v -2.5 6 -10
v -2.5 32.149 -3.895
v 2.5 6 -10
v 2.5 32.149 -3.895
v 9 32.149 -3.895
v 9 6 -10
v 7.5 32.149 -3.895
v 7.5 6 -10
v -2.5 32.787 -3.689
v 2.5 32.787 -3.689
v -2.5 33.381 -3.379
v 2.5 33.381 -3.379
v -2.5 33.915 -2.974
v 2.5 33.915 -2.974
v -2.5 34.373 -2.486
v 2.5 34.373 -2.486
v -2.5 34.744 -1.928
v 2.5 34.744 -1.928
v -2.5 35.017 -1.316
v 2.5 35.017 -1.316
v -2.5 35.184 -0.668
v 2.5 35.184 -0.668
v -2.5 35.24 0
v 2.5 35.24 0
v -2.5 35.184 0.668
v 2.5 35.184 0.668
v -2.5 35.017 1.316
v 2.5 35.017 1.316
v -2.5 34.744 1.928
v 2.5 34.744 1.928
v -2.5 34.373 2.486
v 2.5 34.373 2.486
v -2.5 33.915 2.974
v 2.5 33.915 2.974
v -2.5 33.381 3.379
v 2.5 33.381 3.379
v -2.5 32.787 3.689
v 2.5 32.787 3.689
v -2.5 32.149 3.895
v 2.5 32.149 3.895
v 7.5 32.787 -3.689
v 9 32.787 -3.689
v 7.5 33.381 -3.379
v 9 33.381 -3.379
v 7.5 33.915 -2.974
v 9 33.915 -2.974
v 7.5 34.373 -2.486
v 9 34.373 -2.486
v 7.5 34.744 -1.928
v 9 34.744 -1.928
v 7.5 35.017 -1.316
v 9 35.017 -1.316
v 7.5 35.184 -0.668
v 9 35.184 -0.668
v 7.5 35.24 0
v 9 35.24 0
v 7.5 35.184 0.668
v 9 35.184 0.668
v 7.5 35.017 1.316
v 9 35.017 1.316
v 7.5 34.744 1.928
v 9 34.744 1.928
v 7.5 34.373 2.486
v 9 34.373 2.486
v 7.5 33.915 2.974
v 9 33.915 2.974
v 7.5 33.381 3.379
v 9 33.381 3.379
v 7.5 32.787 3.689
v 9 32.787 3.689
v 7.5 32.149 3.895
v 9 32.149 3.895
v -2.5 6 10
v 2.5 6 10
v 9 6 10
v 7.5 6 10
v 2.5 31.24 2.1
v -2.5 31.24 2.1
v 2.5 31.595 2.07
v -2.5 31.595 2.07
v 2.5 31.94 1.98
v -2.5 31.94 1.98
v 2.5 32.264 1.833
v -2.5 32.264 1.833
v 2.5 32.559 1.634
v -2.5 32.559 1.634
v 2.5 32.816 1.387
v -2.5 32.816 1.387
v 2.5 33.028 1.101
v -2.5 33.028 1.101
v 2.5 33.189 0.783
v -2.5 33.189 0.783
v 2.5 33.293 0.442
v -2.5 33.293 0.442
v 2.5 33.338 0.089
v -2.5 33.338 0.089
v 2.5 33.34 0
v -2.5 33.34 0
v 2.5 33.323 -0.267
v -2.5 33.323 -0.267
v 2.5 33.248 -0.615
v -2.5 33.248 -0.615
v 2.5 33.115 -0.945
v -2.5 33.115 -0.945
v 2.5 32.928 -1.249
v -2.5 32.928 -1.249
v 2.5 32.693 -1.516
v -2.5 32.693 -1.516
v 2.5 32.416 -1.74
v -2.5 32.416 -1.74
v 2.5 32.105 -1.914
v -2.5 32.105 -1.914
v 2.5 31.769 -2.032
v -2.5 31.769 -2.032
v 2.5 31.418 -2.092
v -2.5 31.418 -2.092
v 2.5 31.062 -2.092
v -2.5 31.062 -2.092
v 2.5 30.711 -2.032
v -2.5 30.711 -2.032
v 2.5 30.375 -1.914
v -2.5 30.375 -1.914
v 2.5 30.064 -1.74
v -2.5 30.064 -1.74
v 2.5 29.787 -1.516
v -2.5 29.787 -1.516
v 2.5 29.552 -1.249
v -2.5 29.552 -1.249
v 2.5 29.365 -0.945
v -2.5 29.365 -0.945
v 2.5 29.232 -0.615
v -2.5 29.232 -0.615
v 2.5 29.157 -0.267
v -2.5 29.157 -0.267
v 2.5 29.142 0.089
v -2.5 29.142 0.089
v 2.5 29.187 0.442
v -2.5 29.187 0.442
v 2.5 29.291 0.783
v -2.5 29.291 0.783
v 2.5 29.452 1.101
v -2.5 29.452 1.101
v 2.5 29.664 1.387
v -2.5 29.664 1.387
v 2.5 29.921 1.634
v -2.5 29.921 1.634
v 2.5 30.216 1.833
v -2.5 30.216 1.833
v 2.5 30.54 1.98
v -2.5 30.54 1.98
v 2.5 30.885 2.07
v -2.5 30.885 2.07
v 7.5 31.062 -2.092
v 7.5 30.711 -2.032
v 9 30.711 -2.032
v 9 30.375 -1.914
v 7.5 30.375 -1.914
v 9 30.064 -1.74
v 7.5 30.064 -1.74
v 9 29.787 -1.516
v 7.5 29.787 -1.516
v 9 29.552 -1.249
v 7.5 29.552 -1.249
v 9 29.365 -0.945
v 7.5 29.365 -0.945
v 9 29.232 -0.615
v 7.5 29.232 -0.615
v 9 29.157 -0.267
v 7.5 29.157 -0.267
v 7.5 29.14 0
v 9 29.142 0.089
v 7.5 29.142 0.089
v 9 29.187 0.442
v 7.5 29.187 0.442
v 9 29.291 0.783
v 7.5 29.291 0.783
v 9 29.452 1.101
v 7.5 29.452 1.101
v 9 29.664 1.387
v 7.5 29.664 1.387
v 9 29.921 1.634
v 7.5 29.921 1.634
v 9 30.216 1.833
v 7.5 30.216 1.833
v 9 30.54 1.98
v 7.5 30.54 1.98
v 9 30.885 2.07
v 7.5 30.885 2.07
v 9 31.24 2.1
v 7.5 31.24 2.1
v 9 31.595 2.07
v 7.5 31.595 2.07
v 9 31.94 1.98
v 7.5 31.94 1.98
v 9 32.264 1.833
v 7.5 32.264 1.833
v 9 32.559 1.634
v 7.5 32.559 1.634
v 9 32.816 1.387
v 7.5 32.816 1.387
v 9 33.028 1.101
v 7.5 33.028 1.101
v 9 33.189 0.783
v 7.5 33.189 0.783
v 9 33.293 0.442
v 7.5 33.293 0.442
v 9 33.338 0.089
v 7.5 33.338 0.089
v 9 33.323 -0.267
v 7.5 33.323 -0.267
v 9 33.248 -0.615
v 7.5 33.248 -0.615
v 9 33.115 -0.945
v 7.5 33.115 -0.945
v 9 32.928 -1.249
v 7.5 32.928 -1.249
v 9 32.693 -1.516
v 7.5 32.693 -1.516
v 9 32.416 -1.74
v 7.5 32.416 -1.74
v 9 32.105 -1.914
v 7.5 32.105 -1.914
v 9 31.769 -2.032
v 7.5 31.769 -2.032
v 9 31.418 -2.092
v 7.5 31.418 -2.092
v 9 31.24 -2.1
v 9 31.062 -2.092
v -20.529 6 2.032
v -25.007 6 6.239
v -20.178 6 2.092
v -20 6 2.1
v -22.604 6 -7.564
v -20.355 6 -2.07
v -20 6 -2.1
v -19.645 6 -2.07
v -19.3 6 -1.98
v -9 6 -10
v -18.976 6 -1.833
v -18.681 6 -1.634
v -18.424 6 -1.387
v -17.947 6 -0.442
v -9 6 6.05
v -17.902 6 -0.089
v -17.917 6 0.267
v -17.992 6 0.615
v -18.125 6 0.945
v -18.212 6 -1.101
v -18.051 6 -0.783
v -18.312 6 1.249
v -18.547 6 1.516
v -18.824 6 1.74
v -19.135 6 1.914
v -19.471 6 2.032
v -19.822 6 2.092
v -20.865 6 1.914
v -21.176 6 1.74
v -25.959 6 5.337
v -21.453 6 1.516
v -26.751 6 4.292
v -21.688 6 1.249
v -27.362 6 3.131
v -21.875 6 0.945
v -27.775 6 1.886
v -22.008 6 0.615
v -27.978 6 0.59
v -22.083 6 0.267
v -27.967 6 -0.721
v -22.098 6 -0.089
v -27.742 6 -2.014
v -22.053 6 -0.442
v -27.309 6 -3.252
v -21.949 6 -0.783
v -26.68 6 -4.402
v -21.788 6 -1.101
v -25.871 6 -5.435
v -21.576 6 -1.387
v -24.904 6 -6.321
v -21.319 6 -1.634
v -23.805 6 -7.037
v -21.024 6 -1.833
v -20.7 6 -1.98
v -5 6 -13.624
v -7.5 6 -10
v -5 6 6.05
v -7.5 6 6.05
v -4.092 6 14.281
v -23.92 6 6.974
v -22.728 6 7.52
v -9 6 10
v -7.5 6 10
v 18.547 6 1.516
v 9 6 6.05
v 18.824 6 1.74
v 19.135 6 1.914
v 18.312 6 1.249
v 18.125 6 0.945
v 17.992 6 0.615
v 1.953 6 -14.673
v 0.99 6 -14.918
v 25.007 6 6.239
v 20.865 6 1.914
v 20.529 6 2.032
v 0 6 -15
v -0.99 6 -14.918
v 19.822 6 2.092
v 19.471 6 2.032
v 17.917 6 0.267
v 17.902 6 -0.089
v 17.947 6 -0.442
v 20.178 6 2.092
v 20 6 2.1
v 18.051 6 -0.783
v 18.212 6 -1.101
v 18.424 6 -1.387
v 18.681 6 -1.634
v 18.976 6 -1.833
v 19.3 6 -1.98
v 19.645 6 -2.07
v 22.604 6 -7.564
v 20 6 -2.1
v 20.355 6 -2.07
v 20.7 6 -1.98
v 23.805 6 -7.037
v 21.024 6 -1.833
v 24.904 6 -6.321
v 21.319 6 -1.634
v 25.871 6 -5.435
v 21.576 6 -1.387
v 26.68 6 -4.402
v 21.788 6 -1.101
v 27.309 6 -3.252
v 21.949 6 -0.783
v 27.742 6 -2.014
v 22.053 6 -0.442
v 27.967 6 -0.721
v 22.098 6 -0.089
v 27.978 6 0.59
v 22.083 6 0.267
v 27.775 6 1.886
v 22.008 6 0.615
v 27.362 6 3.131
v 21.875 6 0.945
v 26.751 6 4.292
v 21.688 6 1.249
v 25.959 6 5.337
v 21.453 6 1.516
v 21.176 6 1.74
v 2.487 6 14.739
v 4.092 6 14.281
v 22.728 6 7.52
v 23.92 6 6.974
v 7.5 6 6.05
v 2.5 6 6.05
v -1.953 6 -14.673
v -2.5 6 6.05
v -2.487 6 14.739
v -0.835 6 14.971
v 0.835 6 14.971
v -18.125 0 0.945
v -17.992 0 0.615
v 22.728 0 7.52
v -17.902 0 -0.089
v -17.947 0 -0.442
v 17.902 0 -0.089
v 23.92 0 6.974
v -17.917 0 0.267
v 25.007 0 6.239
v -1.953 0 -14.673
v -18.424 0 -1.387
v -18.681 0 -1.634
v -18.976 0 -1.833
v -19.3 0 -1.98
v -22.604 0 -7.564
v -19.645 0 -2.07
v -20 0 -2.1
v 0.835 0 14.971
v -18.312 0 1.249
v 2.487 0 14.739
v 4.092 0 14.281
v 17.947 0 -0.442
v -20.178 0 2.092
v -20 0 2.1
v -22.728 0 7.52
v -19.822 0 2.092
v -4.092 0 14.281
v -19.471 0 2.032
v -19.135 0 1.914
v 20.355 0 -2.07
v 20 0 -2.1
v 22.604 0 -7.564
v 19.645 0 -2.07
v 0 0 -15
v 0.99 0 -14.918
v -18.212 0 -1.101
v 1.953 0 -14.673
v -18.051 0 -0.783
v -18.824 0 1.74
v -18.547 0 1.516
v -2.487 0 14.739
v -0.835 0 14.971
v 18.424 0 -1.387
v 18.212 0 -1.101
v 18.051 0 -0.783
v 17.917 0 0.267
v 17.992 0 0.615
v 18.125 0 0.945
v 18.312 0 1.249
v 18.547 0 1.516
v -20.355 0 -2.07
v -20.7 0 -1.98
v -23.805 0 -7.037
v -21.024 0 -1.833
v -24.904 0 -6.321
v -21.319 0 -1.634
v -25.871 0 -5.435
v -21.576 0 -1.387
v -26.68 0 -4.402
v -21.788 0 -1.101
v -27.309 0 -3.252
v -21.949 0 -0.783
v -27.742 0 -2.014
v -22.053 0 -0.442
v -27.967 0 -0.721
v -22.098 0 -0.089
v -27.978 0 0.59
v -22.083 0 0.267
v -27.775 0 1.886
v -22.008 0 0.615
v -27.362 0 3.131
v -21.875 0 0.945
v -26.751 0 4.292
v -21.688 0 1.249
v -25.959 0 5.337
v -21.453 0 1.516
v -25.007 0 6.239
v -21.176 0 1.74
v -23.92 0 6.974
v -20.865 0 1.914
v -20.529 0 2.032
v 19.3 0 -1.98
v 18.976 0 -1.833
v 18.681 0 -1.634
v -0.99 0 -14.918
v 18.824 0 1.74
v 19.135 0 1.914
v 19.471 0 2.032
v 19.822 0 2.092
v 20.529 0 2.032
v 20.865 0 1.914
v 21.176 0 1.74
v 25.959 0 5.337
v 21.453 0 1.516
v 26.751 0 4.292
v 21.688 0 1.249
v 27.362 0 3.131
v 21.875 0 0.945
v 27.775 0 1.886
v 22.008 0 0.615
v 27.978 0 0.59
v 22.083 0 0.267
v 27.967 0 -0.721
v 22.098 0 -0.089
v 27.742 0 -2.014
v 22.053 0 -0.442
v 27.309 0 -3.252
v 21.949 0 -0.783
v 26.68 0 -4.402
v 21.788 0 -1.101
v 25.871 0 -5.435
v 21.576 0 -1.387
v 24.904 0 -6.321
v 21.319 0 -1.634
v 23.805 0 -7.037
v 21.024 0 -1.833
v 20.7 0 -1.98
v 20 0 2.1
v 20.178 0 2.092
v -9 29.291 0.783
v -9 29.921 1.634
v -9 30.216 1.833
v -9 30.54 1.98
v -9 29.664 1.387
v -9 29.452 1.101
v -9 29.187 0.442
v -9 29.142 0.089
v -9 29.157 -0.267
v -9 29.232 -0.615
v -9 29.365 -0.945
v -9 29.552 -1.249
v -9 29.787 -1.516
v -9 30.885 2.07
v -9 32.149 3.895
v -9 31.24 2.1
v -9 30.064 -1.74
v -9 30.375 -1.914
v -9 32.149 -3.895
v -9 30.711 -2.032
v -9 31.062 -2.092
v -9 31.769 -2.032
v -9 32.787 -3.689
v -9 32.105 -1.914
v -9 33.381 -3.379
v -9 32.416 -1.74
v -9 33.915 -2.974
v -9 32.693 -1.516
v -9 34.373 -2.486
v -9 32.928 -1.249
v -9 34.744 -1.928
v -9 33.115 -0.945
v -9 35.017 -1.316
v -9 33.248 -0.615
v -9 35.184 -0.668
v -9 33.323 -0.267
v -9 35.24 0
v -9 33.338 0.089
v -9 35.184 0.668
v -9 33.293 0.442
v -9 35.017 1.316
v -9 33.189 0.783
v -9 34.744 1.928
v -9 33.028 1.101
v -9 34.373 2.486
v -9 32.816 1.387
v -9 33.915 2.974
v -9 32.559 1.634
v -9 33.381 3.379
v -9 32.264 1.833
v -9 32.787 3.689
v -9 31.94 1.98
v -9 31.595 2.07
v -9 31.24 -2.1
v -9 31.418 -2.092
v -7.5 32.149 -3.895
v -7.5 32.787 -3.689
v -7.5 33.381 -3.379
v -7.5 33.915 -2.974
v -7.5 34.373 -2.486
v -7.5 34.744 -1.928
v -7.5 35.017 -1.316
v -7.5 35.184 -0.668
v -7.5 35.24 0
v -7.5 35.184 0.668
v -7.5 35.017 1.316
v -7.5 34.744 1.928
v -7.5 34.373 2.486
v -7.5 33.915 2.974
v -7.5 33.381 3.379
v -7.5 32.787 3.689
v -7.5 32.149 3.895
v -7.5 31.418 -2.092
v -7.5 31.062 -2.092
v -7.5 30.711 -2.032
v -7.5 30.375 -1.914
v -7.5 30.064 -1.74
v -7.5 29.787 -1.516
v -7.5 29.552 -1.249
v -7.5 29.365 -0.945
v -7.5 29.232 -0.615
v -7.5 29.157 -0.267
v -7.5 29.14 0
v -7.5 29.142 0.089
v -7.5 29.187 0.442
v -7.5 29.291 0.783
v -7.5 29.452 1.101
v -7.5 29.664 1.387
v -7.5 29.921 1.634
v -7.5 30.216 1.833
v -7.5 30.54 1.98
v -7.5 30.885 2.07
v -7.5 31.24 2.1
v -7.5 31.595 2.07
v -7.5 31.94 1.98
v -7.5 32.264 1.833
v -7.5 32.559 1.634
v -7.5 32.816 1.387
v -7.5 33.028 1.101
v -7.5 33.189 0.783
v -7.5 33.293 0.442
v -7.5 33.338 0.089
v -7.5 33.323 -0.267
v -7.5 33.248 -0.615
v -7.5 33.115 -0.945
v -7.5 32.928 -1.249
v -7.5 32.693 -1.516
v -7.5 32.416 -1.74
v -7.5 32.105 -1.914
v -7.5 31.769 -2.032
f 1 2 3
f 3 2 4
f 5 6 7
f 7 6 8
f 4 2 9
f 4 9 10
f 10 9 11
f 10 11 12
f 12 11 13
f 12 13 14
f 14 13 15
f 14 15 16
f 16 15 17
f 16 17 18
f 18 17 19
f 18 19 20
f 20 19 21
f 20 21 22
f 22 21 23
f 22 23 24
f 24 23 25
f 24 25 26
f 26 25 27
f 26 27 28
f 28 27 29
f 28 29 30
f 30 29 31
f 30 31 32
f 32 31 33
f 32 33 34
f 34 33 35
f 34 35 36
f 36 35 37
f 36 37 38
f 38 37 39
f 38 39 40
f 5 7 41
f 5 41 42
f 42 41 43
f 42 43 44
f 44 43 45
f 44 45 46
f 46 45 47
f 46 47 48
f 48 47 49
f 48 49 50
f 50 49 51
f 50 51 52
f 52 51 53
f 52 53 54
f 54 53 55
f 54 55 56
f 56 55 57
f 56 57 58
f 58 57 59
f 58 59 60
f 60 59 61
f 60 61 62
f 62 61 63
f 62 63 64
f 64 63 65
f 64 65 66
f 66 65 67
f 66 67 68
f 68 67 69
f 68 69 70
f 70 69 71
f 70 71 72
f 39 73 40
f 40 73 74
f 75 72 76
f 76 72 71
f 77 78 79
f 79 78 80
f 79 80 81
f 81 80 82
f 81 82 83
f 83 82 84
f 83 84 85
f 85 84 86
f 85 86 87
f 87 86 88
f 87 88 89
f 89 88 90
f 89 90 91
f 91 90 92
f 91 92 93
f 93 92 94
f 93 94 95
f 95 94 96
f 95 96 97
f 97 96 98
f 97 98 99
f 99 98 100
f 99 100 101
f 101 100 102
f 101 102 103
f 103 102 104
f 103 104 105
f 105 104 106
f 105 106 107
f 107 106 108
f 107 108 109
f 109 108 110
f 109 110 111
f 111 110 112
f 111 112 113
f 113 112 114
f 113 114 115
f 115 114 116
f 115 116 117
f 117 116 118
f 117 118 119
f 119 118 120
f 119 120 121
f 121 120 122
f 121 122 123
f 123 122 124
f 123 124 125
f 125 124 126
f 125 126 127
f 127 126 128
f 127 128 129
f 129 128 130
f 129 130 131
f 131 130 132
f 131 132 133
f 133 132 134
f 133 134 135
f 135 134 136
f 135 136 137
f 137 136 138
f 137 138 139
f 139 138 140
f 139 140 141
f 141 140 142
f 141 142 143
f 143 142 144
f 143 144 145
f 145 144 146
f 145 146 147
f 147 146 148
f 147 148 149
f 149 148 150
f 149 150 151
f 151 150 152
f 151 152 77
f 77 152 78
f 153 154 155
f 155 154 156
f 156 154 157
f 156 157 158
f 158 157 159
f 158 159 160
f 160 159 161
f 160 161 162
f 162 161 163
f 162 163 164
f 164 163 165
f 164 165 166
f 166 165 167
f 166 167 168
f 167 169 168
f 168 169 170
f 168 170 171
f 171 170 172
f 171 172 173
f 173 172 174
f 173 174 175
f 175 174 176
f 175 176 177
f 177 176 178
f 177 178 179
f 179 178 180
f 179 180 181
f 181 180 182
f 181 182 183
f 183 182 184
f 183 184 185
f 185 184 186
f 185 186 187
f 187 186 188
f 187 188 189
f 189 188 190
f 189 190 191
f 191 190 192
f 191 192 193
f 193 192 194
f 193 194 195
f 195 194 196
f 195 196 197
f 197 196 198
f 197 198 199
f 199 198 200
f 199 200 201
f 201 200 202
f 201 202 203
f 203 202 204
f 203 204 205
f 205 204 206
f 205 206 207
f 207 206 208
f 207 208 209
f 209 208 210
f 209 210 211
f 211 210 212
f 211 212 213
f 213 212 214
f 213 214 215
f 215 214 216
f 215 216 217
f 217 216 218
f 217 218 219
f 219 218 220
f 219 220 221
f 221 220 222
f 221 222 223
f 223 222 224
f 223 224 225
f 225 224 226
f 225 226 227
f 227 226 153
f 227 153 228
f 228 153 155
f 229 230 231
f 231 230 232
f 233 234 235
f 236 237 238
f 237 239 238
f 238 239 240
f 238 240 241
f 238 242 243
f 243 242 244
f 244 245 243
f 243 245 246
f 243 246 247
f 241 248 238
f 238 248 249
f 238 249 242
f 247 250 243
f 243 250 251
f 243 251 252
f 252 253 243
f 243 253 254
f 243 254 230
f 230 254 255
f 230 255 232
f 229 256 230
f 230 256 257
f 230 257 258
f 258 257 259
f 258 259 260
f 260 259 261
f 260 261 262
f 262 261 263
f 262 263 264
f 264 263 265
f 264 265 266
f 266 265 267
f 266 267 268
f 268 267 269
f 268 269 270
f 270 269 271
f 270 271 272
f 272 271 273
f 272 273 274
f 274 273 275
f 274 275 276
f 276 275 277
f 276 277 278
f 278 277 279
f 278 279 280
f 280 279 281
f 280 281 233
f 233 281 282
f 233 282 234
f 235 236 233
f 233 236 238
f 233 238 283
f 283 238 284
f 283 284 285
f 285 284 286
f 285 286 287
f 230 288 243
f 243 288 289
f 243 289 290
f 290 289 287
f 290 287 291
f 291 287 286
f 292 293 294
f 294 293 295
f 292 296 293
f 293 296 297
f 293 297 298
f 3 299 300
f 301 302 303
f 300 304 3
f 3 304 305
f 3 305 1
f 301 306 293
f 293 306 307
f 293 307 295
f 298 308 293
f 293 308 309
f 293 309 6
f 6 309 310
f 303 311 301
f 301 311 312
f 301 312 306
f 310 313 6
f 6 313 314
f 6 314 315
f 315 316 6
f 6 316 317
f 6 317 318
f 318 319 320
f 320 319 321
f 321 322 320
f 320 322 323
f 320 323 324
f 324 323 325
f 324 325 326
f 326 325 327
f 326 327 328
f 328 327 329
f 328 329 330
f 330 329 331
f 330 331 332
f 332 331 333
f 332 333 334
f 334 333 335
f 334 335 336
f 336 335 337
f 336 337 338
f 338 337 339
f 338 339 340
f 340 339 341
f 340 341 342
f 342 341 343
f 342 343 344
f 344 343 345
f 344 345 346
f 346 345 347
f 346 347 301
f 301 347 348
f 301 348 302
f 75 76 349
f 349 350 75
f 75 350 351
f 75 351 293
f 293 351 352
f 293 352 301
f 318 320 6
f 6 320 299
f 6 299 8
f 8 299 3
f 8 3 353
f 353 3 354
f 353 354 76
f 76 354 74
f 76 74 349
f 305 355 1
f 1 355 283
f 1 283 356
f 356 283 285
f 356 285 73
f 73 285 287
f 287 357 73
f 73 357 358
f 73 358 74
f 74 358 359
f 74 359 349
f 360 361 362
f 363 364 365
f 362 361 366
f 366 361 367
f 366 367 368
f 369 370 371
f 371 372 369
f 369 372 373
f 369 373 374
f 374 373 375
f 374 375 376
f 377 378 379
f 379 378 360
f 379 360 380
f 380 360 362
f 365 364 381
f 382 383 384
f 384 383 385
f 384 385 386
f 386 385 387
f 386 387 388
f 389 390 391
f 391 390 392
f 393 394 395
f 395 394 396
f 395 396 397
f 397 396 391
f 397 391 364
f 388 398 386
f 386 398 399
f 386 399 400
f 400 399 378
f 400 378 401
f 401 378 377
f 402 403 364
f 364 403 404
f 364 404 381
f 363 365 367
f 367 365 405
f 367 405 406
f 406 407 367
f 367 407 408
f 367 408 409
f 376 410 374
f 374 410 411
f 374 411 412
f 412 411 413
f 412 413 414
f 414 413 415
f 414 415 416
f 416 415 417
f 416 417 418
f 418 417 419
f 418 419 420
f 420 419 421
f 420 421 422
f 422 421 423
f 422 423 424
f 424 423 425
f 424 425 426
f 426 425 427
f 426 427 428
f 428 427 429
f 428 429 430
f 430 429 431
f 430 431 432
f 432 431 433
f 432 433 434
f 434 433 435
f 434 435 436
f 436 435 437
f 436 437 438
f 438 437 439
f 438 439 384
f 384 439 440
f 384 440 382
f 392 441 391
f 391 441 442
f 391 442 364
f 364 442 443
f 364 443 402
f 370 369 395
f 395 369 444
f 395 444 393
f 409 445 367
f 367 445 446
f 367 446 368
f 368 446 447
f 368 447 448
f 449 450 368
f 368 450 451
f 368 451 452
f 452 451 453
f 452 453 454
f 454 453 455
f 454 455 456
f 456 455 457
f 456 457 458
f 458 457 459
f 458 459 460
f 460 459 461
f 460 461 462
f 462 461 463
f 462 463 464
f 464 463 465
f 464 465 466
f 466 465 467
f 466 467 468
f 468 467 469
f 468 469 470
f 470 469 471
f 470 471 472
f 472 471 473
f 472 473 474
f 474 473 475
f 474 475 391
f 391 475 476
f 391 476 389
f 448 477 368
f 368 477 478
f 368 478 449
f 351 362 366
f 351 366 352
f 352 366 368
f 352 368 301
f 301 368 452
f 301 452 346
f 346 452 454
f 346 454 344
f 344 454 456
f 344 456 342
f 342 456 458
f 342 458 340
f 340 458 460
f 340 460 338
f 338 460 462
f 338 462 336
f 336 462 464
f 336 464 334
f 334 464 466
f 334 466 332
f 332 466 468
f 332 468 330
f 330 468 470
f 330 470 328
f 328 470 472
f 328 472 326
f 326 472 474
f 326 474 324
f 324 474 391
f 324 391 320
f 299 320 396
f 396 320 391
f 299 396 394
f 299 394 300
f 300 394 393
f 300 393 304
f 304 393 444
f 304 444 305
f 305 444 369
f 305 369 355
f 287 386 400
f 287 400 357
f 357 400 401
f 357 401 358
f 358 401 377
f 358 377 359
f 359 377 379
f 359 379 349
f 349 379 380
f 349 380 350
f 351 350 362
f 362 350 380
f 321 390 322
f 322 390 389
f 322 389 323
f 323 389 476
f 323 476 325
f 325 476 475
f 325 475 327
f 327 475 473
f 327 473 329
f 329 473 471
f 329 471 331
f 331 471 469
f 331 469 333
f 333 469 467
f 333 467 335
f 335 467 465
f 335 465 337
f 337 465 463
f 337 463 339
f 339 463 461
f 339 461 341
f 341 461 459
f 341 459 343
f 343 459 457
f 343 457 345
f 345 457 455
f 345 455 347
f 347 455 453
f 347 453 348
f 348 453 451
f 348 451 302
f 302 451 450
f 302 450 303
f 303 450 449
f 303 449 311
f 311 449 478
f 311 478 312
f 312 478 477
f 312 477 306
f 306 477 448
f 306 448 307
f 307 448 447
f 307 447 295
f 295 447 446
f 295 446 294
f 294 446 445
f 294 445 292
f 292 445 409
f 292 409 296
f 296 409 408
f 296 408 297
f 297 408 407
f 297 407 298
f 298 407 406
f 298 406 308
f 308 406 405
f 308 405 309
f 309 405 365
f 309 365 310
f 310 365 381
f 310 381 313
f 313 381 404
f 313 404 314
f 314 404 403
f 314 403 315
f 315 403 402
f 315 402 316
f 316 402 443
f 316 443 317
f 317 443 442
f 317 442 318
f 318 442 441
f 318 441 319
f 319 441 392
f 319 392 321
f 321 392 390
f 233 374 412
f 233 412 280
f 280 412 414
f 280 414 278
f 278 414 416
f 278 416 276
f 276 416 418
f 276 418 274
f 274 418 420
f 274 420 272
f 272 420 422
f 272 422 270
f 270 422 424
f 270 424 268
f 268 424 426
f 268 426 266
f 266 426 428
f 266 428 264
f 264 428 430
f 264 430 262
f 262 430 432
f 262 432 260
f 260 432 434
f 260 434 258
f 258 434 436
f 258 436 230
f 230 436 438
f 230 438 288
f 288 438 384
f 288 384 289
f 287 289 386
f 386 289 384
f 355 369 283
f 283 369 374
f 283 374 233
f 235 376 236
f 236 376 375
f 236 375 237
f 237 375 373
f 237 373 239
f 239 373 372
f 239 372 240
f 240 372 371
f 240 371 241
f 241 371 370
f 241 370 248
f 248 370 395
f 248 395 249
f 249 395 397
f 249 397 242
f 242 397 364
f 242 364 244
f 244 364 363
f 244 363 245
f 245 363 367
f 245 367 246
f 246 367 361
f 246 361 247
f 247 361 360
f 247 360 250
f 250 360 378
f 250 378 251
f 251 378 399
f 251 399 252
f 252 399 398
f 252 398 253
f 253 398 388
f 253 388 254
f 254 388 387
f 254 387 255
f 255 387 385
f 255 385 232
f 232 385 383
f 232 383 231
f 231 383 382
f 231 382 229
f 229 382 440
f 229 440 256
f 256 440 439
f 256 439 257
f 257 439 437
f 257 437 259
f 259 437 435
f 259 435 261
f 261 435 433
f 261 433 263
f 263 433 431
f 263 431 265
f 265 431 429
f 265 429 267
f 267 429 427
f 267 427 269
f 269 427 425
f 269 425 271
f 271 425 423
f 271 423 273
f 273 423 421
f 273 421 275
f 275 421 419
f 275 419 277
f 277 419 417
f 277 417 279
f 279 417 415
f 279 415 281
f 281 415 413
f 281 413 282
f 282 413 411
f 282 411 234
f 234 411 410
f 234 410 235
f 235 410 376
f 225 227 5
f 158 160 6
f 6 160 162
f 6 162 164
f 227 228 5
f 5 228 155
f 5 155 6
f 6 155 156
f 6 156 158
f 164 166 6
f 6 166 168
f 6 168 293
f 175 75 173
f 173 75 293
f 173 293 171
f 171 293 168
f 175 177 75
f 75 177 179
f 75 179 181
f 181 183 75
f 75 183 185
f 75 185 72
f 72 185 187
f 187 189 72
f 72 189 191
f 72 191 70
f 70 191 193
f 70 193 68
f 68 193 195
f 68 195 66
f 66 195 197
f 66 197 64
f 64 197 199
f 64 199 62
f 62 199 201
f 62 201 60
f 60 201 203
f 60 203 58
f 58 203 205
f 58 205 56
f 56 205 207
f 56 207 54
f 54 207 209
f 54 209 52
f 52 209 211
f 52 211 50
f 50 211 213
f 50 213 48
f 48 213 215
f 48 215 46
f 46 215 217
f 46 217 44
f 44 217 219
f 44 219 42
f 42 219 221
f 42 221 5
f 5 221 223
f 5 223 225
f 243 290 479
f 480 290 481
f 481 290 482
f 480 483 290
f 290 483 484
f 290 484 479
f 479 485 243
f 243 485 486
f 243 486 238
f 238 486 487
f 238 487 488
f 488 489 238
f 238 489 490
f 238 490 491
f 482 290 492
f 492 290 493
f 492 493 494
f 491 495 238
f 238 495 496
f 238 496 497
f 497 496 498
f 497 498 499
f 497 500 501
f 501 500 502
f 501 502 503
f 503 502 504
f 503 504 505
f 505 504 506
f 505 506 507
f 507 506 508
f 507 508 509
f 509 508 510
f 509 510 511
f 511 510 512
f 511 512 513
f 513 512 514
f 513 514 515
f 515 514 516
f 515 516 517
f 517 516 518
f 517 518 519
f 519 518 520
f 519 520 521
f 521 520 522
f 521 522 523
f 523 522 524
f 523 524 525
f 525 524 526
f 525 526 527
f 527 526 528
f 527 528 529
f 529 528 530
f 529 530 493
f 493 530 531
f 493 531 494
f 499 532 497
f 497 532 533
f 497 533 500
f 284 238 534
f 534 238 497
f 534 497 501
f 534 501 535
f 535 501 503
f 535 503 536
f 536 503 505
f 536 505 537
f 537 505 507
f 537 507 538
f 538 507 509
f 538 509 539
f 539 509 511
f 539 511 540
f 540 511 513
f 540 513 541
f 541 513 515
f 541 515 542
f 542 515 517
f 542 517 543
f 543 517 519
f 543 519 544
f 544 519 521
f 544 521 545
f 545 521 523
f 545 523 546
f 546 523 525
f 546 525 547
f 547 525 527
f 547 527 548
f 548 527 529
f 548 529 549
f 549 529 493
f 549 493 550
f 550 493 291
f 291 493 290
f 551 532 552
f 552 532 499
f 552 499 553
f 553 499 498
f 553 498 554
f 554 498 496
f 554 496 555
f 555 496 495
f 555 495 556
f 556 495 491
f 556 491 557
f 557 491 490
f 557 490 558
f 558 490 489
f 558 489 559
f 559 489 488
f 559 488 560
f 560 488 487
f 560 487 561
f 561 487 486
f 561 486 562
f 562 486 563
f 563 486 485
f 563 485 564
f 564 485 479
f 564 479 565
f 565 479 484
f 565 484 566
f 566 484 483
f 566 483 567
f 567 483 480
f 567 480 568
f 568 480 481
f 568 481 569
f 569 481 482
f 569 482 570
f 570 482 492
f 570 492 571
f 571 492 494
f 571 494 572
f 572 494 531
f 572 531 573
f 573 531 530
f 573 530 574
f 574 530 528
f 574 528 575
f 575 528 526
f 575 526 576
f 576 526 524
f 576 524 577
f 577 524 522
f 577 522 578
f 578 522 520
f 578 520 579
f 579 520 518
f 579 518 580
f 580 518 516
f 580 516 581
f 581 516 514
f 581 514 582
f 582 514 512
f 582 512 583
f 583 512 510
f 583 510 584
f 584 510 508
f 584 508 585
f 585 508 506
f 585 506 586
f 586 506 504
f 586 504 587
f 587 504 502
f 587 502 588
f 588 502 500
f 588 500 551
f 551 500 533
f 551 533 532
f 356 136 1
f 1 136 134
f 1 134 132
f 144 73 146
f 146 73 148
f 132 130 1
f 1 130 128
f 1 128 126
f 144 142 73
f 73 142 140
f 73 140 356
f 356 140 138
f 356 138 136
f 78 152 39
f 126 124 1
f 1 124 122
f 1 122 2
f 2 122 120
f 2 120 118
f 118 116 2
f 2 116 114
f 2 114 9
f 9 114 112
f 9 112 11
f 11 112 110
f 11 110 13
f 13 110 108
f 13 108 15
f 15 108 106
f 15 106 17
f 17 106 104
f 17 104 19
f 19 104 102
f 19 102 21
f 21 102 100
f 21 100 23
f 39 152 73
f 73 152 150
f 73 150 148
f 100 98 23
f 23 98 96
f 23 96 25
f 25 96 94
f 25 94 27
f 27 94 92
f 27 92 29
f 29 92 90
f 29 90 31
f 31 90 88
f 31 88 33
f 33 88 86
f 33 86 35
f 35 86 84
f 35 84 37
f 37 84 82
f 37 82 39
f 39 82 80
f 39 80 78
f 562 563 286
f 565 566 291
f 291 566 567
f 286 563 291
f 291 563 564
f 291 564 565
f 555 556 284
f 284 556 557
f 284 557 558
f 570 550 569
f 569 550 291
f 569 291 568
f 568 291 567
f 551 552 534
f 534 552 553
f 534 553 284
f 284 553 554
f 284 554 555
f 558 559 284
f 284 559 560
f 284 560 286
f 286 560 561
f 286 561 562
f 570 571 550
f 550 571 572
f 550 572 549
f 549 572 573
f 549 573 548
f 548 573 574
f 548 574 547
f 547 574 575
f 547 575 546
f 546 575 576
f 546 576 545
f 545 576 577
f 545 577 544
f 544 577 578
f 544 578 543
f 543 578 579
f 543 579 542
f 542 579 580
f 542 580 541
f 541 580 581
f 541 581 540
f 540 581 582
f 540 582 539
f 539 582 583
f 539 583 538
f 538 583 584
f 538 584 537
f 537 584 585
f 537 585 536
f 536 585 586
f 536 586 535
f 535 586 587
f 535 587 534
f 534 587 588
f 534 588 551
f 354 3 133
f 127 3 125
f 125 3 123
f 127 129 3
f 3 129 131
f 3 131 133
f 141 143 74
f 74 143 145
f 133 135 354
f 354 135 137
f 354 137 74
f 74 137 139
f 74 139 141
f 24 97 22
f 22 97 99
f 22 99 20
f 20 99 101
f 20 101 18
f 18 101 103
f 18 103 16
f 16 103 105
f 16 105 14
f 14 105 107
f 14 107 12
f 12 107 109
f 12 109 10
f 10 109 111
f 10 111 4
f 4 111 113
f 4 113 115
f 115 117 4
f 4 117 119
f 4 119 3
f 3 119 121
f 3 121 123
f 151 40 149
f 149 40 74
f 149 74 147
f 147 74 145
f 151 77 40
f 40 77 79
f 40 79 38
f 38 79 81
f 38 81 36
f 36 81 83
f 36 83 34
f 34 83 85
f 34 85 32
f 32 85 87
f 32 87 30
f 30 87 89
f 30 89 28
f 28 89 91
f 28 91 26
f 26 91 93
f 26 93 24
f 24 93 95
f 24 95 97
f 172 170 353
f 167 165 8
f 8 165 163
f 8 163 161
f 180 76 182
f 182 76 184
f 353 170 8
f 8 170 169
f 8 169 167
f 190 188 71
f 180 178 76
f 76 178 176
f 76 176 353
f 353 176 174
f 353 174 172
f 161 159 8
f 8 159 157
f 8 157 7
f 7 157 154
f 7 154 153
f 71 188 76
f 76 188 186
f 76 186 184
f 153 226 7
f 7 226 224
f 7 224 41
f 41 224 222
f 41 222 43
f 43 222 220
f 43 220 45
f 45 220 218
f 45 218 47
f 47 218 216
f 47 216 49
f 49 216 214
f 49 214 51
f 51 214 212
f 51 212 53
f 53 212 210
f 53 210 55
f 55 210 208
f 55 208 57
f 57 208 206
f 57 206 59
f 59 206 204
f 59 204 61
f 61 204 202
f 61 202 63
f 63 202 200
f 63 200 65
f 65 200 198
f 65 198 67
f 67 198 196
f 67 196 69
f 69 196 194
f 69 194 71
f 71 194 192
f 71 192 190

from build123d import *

# Parameters (mm, degrees)
SKETCH1_R           = 2.1
BOSS_EXTRUDE1_DEPTH = 6
SKETCH2_R           = 2.1
BOSS_EXTRUDE2_DEPTH = 9
SKETCH3_W           = 5
SKETCH3_H           = 58.48
CUT_EXTRUDE1_DEPTH  = 16


with BuildPart() as part:
    # Sketch1 → Boss-Extrude1 (new body)
    with BuildSketch(Plane(origin=(0, 0, 0), x_dir=(1, 0, 0), z_dir=(0, 1, 0))):
        with BuildLine():
            Line((22.603957871, 7.564350825), (1.952968403, 14.673263119))
            ThreePointArc((1.952968403, 14.673263119), (0.990055879, 14.917752053), (0, 15))
            Line((0, 15), (0, -15))
            ThreePointArc((0, -15), (2.077420969, -14.818812213), (4.092108053, -14.280720353))
            Line((4.092108053, -14.280720353), (22.728072035, -7.520480235))
            ThreePointArc((22.728072035, -7.520480235), (27.999729231, 0.065819743), (22.603957871, 7.564350825))
        make_face()
        with Locations((20, 0)):
            Circle(SKETCH1_R, mode=Mode.SUBTRACT)
    boss_extrude1 = extrude(amount=BOSS_EXTRUDE1_DEPTH)

    # Mirror1: Boss-Extrude1 across plane
    add(boss_extrude1.mirror(Plane(origin=(0, 6, -15), x_dir=(0, 0, 1), z_dir=(1, 0, 0))))

    # Sketch2 → Boss-Extrude2 (add, symmetric)
    with BuildSketch(Plane(origin=(0, 0, 0), x_dir=(0, 0, -1), z_dir=(1, 0, 0))):
        with BuildLine():
            Line((-10, 6), (-3.895258642, 32.149373472))
            ThreePointArc((-3.895258642, 32.149373472), (0, 35.24), (3.895258642, 32.149373472))
            Line((3.895258642, 32.149373472), (10, 6))
            Line((10, 6), (-10, 6))
        make_face()
        with Locations((0, 31.24)):
            Circle(SKETCH2_R, mode=Mode.SUBTRACT)
    extrude(amount=BOSS_EXTRUDE2_DEPTH, both=True)

    # Sketch3 → Cut-Extrude1 (cut, symmetric)
    with BuildSketch(Plane.XY):
        with Locations((-5, 35.24)):
            Rectangle(SKETCH3_W, SKETCH3_H)
    cut_extrude1 = extrude(amount=CUT_EXTRUDE1_DEPTH, both=True, mode=Mode.SUBTRACT)

    # Mirror2: Cut-Extrude1 across plane
    add(cut_extrude1.mirror(Plane(origin=(0, 0, 0), x_dir=(0, 0, 1), z_dir=(1, 0, 0))), mode=Mode.SUBTRACT)


solid = part.part
